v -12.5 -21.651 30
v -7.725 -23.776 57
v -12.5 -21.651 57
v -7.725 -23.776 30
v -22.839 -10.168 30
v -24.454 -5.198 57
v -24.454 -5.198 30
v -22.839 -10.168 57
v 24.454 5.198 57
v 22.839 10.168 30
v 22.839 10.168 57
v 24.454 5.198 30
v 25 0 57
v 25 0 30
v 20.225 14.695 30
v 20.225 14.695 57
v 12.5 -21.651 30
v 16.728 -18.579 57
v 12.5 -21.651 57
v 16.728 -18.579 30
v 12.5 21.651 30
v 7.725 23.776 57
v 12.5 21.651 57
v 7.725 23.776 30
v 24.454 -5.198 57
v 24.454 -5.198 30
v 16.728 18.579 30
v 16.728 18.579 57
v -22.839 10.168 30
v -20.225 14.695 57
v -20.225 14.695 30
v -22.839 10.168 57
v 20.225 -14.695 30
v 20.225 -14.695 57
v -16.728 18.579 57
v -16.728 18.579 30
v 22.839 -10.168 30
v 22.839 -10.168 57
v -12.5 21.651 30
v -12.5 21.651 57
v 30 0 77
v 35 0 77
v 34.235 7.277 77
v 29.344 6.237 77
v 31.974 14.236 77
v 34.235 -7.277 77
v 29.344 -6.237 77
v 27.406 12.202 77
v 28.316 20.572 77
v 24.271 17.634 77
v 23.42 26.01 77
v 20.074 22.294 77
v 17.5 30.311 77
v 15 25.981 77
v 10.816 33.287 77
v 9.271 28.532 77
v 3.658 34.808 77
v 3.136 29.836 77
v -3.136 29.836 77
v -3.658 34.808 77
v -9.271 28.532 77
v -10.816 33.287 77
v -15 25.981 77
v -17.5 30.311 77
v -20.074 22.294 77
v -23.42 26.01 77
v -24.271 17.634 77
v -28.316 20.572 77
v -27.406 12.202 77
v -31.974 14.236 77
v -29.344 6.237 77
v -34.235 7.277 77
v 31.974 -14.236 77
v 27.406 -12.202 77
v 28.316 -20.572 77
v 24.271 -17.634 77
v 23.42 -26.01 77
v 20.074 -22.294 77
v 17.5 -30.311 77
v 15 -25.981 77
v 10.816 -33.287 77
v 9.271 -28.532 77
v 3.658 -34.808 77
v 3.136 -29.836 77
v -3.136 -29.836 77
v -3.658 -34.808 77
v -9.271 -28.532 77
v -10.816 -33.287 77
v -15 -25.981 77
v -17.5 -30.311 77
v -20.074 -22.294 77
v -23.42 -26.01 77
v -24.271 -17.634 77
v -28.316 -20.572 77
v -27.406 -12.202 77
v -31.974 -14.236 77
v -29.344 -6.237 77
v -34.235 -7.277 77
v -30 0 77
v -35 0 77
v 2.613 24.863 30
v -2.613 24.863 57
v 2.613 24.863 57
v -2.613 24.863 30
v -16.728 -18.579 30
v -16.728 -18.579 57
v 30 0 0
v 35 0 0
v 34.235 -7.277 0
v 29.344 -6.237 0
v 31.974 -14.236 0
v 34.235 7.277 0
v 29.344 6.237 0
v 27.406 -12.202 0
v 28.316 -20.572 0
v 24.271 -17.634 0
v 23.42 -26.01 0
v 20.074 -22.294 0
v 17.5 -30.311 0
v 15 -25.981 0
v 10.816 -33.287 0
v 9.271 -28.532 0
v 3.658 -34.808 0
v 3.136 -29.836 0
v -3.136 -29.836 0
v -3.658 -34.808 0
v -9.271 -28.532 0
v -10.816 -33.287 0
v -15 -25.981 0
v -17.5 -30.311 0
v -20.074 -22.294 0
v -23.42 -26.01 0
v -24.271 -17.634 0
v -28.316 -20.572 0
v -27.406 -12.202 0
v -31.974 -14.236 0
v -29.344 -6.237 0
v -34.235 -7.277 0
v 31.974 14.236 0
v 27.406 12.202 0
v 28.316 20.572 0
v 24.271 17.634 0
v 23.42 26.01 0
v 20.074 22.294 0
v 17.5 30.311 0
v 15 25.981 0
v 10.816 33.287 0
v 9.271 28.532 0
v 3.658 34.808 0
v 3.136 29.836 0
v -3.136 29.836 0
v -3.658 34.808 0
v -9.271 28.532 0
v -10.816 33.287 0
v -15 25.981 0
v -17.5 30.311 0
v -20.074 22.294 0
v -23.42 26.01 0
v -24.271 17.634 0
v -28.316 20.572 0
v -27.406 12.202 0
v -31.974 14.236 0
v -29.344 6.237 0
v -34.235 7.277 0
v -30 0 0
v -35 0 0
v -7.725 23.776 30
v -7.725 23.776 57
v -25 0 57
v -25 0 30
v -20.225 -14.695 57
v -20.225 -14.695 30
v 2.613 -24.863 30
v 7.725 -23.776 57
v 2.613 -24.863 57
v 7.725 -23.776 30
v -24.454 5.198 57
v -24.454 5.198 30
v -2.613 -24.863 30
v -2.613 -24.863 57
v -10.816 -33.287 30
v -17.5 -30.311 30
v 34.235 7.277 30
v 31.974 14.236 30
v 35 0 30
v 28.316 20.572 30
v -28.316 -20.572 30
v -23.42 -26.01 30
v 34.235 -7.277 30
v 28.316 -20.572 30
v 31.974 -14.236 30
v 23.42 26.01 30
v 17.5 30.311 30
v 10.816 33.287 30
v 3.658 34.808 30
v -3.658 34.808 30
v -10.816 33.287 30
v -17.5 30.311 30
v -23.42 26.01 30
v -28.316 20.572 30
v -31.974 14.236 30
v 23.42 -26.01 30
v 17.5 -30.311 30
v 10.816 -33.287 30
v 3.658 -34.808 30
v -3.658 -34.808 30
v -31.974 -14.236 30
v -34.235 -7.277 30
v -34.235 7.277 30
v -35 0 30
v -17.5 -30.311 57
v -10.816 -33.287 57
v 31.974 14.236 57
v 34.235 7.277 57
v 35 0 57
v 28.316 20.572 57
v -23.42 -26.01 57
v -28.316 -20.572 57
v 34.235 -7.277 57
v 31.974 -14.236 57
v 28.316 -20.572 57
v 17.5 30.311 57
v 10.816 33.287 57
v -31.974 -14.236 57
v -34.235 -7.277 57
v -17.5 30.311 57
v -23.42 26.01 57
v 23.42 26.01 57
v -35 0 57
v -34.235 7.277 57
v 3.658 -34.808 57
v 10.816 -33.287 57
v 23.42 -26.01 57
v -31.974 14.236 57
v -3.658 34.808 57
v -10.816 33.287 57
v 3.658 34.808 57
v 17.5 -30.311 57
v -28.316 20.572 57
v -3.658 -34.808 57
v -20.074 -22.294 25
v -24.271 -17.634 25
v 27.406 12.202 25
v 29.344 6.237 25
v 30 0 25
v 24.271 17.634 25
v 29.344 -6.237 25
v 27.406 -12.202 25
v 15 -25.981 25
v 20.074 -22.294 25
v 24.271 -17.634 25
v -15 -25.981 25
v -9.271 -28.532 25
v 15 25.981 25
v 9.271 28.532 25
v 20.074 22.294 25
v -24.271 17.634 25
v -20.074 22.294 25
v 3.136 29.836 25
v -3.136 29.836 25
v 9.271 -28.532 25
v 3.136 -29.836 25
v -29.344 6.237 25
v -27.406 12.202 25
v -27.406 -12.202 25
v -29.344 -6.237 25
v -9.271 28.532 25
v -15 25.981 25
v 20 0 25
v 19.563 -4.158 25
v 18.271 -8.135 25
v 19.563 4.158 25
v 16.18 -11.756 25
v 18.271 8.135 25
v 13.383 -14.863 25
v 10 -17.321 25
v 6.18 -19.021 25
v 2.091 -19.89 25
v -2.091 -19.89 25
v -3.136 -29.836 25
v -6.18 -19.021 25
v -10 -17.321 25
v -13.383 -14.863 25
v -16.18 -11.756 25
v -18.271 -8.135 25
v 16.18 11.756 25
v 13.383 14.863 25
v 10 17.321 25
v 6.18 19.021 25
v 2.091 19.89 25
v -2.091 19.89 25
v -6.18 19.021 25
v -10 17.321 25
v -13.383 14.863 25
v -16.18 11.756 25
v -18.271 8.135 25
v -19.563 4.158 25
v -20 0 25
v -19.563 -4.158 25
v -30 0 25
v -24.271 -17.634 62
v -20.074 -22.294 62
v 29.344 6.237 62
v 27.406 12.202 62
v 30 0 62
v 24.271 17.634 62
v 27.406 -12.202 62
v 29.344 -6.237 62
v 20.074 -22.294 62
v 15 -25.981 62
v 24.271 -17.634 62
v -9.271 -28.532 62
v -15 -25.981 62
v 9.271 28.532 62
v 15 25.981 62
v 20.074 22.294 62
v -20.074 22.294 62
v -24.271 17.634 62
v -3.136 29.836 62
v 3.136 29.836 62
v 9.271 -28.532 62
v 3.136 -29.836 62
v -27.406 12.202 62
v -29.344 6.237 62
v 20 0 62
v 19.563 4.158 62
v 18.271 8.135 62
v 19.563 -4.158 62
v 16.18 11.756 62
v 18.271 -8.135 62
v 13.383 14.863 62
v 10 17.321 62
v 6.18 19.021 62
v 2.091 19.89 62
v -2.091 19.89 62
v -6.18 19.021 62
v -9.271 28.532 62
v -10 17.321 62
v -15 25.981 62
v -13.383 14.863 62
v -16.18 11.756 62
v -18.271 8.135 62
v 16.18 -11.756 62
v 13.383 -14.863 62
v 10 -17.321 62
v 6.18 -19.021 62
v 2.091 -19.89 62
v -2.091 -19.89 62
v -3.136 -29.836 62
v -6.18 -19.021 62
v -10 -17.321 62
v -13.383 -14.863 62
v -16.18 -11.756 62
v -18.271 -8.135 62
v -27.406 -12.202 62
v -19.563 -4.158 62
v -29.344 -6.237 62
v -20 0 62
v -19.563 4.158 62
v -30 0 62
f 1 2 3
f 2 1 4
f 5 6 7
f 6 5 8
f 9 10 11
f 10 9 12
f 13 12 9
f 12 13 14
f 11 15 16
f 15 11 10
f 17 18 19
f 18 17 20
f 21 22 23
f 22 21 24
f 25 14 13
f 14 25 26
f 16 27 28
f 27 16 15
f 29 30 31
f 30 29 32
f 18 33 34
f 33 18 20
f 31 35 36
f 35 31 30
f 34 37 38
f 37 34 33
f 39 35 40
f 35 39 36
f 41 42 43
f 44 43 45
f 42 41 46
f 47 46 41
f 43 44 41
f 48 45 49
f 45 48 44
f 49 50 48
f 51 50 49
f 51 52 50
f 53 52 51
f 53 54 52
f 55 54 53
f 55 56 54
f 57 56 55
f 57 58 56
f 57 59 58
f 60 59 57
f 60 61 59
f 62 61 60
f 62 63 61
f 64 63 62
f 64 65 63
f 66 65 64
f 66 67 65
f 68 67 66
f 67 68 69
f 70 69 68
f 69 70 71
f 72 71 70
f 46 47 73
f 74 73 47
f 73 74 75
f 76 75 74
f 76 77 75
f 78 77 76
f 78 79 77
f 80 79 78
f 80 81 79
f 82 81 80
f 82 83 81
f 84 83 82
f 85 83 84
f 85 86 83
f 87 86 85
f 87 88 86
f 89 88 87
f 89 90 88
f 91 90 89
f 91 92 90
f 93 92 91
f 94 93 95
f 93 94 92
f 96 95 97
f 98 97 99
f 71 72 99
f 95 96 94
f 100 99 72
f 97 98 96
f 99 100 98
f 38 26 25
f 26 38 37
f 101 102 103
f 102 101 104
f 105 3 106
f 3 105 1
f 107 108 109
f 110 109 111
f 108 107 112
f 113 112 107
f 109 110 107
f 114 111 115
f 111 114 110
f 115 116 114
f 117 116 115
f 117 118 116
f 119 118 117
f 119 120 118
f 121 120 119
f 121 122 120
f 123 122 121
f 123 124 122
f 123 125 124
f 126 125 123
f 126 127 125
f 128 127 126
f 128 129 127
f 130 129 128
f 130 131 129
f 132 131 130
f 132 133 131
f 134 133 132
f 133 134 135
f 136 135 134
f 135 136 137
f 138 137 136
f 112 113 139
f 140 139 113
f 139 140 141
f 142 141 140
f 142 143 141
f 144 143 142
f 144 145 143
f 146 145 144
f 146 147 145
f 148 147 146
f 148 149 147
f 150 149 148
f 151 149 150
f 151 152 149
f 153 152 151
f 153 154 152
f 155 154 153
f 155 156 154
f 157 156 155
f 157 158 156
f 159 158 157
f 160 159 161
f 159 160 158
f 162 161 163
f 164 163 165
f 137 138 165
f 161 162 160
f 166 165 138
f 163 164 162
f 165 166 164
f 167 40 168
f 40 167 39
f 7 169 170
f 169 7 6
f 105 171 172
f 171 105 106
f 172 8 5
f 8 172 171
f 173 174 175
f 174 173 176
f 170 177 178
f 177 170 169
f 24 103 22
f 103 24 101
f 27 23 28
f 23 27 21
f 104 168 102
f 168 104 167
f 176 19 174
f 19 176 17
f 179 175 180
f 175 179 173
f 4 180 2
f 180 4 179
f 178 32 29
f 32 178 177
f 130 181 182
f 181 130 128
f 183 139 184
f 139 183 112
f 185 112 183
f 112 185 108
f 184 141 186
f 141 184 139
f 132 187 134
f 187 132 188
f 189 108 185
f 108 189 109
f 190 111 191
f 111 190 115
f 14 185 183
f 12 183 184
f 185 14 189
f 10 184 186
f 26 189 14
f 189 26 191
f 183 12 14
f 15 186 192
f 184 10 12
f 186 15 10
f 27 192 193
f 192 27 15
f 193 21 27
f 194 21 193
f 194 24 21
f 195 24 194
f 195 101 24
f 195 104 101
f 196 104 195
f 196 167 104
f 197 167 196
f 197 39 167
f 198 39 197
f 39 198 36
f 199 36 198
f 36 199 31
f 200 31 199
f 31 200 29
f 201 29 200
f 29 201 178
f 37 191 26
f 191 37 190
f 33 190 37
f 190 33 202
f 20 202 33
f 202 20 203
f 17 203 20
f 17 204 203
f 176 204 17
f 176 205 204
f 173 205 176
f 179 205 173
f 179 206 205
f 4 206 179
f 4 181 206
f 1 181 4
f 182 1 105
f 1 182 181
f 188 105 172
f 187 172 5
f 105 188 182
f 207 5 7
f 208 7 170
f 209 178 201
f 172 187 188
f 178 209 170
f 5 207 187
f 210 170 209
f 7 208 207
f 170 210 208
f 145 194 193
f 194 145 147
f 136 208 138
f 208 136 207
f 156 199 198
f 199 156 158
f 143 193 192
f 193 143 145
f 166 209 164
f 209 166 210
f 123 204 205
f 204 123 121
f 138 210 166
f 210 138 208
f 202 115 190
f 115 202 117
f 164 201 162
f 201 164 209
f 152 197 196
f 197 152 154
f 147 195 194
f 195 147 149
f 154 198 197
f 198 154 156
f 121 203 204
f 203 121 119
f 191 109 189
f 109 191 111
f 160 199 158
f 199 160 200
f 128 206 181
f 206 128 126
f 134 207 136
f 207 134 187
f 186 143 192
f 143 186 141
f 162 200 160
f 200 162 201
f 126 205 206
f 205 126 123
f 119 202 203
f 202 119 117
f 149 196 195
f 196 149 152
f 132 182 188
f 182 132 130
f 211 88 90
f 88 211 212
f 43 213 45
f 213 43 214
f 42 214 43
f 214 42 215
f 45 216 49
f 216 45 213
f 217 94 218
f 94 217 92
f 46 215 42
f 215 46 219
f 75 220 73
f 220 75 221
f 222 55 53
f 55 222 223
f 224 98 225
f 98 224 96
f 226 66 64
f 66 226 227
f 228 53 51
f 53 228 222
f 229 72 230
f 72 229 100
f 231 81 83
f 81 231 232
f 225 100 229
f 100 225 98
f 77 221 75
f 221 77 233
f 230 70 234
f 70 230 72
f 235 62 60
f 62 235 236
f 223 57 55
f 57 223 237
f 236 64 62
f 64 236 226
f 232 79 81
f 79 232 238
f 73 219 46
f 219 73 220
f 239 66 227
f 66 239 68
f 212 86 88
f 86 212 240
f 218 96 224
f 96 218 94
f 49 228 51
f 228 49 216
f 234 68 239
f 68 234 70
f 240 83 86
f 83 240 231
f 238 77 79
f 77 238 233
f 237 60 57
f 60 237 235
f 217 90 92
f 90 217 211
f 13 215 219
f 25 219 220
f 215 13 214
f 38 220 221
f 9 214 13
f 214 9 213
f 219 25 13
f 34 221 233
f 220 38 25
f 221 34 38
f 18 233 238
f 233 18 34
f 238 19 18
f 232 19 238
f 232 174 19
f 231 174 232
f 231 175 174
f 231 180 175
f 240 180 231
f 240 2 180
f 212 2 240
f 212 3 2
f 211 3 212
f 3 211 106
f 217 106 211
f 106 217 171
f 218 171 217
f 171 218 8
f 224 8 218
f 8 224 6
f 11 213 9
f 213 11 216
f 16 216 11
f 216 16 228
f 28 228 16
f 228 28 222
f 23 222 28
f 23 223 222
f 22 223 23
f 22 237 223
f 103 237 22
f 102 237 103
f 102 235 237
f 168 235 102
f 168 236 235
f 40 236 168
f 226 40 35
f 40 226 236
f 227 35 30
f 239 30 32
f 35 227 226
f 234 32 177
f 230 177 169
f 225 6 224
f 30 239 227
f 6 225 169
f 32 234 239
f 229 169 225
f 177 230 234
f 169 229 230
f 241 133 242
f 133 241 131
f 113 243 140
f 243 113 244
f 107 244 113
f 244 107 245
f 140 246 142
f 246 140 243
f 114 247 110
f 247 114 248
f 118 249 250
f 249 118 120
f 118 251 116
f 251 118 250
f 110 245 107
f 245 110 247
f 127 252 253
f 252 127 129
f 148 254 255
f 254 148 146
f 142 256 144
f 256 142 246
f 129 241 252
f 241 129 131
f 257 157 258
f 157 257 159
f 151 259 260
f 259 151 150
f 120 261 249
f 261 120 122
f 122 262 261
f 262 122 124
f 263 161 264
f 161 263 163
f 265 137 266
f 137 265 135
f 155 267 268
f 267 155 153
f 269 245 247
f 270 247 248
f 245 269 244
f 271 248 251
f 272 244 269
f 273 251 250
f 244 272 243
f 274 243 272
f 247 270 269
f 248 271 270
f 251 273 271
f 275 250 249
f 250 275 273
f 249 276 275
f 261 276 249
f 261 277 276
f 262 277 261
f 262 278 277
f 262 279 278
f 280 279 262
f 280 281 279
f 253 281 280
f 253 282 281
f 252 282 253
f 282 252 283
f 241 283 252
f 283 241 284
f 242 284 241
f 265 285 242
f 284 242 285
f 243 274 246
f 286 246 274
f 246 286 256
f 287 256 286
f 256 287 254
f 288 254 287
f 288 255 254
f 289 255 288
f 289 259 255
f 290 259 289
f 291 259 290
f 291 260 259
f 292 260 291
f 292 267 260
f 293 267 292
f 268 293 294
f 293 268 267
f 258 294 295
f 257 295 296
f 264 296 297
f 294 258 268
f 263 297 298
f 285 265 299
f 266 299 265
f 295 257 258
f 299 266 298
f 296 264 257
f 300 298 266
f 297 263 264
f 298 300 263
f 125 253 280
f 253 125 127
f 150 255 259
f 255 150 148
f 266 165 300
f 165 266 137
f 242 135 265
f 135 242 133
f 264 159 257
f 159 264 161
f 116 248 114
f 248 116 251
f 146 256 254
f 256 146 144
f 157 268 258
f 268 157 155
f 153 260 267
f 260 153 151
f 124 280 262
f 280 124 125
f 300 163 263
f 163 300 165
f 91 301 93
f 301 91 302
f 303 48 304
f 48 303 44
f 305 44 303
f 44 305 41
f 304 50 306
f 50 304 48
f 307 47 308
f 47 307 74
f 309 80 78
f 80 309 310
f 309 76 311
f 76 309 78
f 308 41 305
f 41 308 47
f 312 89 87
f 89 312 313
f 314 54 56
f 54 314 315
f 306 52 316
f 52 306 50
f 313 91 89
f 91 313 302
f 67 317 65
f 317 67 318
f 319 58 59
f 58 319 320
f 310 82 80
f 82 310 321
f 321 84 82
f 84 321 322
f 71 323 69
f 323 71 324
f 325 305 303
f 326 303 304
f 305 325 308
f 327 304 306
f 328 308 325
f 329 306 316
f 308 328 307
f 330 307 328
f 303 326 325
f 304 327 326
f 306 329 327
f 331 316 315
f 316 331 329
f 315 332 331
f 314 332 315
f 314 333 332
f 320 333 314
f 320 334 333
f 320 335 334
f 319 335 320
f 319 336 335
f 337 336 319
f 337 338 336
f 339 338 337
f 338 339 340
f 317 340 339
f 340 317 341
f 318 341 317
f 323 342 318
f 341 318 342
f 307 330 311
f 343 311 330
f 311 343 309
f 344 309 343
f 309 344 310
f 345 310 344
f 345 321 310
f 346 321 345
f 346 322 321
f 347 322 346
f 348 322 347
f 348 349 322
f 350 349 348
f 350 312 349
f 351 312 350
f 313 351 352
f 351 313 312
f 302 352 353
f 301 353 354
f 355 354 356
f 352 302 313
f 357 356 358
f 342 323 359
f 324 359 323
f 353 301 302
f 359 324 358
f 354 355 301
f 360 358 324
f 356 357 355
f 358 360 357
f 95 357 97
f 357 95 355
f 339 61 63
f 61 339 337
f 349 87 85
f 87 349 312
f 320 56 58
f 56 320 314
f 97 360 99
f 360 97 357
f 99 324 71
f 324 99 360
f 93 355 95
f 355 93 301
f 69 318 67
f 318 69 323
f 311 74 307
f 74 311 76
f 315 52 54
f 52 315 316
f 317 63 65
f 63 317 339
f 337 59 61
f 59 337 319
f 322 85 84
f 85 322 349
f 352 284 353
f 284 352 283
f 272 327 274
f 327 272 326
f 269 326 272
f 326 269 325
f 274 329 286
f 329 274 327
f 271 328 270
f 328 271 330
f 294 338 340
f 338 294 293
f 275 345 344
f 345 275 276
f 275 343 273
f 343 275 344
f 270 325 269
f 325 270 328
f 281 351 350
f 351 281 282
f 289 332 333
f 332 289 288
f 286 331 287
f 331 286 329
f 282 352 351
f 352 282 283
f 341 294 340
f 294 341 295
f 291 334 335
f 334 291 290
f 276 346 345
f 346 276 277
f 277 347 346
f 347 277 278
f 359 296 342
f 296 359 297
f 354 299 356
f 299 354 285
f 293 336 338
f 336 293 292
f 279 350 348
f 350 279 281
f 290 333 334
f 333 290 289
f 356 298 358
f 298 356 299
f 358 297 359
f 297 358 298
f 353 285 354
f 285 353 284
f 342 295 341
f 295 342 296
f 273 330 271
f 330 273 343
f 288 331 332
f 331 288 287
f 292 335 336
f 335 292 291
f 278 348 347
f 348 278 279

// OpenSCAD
difference() {
    union() {
        cylinder(77,25,25);
        cylinder(30,35,35);
        translate([0,0,57]) cylinder(20,35,35);
    }
    cylinder(25,30,30);
    translate([0,0,62]) cylinder(15,30,30);
    cylinder(77,20,20);
}
